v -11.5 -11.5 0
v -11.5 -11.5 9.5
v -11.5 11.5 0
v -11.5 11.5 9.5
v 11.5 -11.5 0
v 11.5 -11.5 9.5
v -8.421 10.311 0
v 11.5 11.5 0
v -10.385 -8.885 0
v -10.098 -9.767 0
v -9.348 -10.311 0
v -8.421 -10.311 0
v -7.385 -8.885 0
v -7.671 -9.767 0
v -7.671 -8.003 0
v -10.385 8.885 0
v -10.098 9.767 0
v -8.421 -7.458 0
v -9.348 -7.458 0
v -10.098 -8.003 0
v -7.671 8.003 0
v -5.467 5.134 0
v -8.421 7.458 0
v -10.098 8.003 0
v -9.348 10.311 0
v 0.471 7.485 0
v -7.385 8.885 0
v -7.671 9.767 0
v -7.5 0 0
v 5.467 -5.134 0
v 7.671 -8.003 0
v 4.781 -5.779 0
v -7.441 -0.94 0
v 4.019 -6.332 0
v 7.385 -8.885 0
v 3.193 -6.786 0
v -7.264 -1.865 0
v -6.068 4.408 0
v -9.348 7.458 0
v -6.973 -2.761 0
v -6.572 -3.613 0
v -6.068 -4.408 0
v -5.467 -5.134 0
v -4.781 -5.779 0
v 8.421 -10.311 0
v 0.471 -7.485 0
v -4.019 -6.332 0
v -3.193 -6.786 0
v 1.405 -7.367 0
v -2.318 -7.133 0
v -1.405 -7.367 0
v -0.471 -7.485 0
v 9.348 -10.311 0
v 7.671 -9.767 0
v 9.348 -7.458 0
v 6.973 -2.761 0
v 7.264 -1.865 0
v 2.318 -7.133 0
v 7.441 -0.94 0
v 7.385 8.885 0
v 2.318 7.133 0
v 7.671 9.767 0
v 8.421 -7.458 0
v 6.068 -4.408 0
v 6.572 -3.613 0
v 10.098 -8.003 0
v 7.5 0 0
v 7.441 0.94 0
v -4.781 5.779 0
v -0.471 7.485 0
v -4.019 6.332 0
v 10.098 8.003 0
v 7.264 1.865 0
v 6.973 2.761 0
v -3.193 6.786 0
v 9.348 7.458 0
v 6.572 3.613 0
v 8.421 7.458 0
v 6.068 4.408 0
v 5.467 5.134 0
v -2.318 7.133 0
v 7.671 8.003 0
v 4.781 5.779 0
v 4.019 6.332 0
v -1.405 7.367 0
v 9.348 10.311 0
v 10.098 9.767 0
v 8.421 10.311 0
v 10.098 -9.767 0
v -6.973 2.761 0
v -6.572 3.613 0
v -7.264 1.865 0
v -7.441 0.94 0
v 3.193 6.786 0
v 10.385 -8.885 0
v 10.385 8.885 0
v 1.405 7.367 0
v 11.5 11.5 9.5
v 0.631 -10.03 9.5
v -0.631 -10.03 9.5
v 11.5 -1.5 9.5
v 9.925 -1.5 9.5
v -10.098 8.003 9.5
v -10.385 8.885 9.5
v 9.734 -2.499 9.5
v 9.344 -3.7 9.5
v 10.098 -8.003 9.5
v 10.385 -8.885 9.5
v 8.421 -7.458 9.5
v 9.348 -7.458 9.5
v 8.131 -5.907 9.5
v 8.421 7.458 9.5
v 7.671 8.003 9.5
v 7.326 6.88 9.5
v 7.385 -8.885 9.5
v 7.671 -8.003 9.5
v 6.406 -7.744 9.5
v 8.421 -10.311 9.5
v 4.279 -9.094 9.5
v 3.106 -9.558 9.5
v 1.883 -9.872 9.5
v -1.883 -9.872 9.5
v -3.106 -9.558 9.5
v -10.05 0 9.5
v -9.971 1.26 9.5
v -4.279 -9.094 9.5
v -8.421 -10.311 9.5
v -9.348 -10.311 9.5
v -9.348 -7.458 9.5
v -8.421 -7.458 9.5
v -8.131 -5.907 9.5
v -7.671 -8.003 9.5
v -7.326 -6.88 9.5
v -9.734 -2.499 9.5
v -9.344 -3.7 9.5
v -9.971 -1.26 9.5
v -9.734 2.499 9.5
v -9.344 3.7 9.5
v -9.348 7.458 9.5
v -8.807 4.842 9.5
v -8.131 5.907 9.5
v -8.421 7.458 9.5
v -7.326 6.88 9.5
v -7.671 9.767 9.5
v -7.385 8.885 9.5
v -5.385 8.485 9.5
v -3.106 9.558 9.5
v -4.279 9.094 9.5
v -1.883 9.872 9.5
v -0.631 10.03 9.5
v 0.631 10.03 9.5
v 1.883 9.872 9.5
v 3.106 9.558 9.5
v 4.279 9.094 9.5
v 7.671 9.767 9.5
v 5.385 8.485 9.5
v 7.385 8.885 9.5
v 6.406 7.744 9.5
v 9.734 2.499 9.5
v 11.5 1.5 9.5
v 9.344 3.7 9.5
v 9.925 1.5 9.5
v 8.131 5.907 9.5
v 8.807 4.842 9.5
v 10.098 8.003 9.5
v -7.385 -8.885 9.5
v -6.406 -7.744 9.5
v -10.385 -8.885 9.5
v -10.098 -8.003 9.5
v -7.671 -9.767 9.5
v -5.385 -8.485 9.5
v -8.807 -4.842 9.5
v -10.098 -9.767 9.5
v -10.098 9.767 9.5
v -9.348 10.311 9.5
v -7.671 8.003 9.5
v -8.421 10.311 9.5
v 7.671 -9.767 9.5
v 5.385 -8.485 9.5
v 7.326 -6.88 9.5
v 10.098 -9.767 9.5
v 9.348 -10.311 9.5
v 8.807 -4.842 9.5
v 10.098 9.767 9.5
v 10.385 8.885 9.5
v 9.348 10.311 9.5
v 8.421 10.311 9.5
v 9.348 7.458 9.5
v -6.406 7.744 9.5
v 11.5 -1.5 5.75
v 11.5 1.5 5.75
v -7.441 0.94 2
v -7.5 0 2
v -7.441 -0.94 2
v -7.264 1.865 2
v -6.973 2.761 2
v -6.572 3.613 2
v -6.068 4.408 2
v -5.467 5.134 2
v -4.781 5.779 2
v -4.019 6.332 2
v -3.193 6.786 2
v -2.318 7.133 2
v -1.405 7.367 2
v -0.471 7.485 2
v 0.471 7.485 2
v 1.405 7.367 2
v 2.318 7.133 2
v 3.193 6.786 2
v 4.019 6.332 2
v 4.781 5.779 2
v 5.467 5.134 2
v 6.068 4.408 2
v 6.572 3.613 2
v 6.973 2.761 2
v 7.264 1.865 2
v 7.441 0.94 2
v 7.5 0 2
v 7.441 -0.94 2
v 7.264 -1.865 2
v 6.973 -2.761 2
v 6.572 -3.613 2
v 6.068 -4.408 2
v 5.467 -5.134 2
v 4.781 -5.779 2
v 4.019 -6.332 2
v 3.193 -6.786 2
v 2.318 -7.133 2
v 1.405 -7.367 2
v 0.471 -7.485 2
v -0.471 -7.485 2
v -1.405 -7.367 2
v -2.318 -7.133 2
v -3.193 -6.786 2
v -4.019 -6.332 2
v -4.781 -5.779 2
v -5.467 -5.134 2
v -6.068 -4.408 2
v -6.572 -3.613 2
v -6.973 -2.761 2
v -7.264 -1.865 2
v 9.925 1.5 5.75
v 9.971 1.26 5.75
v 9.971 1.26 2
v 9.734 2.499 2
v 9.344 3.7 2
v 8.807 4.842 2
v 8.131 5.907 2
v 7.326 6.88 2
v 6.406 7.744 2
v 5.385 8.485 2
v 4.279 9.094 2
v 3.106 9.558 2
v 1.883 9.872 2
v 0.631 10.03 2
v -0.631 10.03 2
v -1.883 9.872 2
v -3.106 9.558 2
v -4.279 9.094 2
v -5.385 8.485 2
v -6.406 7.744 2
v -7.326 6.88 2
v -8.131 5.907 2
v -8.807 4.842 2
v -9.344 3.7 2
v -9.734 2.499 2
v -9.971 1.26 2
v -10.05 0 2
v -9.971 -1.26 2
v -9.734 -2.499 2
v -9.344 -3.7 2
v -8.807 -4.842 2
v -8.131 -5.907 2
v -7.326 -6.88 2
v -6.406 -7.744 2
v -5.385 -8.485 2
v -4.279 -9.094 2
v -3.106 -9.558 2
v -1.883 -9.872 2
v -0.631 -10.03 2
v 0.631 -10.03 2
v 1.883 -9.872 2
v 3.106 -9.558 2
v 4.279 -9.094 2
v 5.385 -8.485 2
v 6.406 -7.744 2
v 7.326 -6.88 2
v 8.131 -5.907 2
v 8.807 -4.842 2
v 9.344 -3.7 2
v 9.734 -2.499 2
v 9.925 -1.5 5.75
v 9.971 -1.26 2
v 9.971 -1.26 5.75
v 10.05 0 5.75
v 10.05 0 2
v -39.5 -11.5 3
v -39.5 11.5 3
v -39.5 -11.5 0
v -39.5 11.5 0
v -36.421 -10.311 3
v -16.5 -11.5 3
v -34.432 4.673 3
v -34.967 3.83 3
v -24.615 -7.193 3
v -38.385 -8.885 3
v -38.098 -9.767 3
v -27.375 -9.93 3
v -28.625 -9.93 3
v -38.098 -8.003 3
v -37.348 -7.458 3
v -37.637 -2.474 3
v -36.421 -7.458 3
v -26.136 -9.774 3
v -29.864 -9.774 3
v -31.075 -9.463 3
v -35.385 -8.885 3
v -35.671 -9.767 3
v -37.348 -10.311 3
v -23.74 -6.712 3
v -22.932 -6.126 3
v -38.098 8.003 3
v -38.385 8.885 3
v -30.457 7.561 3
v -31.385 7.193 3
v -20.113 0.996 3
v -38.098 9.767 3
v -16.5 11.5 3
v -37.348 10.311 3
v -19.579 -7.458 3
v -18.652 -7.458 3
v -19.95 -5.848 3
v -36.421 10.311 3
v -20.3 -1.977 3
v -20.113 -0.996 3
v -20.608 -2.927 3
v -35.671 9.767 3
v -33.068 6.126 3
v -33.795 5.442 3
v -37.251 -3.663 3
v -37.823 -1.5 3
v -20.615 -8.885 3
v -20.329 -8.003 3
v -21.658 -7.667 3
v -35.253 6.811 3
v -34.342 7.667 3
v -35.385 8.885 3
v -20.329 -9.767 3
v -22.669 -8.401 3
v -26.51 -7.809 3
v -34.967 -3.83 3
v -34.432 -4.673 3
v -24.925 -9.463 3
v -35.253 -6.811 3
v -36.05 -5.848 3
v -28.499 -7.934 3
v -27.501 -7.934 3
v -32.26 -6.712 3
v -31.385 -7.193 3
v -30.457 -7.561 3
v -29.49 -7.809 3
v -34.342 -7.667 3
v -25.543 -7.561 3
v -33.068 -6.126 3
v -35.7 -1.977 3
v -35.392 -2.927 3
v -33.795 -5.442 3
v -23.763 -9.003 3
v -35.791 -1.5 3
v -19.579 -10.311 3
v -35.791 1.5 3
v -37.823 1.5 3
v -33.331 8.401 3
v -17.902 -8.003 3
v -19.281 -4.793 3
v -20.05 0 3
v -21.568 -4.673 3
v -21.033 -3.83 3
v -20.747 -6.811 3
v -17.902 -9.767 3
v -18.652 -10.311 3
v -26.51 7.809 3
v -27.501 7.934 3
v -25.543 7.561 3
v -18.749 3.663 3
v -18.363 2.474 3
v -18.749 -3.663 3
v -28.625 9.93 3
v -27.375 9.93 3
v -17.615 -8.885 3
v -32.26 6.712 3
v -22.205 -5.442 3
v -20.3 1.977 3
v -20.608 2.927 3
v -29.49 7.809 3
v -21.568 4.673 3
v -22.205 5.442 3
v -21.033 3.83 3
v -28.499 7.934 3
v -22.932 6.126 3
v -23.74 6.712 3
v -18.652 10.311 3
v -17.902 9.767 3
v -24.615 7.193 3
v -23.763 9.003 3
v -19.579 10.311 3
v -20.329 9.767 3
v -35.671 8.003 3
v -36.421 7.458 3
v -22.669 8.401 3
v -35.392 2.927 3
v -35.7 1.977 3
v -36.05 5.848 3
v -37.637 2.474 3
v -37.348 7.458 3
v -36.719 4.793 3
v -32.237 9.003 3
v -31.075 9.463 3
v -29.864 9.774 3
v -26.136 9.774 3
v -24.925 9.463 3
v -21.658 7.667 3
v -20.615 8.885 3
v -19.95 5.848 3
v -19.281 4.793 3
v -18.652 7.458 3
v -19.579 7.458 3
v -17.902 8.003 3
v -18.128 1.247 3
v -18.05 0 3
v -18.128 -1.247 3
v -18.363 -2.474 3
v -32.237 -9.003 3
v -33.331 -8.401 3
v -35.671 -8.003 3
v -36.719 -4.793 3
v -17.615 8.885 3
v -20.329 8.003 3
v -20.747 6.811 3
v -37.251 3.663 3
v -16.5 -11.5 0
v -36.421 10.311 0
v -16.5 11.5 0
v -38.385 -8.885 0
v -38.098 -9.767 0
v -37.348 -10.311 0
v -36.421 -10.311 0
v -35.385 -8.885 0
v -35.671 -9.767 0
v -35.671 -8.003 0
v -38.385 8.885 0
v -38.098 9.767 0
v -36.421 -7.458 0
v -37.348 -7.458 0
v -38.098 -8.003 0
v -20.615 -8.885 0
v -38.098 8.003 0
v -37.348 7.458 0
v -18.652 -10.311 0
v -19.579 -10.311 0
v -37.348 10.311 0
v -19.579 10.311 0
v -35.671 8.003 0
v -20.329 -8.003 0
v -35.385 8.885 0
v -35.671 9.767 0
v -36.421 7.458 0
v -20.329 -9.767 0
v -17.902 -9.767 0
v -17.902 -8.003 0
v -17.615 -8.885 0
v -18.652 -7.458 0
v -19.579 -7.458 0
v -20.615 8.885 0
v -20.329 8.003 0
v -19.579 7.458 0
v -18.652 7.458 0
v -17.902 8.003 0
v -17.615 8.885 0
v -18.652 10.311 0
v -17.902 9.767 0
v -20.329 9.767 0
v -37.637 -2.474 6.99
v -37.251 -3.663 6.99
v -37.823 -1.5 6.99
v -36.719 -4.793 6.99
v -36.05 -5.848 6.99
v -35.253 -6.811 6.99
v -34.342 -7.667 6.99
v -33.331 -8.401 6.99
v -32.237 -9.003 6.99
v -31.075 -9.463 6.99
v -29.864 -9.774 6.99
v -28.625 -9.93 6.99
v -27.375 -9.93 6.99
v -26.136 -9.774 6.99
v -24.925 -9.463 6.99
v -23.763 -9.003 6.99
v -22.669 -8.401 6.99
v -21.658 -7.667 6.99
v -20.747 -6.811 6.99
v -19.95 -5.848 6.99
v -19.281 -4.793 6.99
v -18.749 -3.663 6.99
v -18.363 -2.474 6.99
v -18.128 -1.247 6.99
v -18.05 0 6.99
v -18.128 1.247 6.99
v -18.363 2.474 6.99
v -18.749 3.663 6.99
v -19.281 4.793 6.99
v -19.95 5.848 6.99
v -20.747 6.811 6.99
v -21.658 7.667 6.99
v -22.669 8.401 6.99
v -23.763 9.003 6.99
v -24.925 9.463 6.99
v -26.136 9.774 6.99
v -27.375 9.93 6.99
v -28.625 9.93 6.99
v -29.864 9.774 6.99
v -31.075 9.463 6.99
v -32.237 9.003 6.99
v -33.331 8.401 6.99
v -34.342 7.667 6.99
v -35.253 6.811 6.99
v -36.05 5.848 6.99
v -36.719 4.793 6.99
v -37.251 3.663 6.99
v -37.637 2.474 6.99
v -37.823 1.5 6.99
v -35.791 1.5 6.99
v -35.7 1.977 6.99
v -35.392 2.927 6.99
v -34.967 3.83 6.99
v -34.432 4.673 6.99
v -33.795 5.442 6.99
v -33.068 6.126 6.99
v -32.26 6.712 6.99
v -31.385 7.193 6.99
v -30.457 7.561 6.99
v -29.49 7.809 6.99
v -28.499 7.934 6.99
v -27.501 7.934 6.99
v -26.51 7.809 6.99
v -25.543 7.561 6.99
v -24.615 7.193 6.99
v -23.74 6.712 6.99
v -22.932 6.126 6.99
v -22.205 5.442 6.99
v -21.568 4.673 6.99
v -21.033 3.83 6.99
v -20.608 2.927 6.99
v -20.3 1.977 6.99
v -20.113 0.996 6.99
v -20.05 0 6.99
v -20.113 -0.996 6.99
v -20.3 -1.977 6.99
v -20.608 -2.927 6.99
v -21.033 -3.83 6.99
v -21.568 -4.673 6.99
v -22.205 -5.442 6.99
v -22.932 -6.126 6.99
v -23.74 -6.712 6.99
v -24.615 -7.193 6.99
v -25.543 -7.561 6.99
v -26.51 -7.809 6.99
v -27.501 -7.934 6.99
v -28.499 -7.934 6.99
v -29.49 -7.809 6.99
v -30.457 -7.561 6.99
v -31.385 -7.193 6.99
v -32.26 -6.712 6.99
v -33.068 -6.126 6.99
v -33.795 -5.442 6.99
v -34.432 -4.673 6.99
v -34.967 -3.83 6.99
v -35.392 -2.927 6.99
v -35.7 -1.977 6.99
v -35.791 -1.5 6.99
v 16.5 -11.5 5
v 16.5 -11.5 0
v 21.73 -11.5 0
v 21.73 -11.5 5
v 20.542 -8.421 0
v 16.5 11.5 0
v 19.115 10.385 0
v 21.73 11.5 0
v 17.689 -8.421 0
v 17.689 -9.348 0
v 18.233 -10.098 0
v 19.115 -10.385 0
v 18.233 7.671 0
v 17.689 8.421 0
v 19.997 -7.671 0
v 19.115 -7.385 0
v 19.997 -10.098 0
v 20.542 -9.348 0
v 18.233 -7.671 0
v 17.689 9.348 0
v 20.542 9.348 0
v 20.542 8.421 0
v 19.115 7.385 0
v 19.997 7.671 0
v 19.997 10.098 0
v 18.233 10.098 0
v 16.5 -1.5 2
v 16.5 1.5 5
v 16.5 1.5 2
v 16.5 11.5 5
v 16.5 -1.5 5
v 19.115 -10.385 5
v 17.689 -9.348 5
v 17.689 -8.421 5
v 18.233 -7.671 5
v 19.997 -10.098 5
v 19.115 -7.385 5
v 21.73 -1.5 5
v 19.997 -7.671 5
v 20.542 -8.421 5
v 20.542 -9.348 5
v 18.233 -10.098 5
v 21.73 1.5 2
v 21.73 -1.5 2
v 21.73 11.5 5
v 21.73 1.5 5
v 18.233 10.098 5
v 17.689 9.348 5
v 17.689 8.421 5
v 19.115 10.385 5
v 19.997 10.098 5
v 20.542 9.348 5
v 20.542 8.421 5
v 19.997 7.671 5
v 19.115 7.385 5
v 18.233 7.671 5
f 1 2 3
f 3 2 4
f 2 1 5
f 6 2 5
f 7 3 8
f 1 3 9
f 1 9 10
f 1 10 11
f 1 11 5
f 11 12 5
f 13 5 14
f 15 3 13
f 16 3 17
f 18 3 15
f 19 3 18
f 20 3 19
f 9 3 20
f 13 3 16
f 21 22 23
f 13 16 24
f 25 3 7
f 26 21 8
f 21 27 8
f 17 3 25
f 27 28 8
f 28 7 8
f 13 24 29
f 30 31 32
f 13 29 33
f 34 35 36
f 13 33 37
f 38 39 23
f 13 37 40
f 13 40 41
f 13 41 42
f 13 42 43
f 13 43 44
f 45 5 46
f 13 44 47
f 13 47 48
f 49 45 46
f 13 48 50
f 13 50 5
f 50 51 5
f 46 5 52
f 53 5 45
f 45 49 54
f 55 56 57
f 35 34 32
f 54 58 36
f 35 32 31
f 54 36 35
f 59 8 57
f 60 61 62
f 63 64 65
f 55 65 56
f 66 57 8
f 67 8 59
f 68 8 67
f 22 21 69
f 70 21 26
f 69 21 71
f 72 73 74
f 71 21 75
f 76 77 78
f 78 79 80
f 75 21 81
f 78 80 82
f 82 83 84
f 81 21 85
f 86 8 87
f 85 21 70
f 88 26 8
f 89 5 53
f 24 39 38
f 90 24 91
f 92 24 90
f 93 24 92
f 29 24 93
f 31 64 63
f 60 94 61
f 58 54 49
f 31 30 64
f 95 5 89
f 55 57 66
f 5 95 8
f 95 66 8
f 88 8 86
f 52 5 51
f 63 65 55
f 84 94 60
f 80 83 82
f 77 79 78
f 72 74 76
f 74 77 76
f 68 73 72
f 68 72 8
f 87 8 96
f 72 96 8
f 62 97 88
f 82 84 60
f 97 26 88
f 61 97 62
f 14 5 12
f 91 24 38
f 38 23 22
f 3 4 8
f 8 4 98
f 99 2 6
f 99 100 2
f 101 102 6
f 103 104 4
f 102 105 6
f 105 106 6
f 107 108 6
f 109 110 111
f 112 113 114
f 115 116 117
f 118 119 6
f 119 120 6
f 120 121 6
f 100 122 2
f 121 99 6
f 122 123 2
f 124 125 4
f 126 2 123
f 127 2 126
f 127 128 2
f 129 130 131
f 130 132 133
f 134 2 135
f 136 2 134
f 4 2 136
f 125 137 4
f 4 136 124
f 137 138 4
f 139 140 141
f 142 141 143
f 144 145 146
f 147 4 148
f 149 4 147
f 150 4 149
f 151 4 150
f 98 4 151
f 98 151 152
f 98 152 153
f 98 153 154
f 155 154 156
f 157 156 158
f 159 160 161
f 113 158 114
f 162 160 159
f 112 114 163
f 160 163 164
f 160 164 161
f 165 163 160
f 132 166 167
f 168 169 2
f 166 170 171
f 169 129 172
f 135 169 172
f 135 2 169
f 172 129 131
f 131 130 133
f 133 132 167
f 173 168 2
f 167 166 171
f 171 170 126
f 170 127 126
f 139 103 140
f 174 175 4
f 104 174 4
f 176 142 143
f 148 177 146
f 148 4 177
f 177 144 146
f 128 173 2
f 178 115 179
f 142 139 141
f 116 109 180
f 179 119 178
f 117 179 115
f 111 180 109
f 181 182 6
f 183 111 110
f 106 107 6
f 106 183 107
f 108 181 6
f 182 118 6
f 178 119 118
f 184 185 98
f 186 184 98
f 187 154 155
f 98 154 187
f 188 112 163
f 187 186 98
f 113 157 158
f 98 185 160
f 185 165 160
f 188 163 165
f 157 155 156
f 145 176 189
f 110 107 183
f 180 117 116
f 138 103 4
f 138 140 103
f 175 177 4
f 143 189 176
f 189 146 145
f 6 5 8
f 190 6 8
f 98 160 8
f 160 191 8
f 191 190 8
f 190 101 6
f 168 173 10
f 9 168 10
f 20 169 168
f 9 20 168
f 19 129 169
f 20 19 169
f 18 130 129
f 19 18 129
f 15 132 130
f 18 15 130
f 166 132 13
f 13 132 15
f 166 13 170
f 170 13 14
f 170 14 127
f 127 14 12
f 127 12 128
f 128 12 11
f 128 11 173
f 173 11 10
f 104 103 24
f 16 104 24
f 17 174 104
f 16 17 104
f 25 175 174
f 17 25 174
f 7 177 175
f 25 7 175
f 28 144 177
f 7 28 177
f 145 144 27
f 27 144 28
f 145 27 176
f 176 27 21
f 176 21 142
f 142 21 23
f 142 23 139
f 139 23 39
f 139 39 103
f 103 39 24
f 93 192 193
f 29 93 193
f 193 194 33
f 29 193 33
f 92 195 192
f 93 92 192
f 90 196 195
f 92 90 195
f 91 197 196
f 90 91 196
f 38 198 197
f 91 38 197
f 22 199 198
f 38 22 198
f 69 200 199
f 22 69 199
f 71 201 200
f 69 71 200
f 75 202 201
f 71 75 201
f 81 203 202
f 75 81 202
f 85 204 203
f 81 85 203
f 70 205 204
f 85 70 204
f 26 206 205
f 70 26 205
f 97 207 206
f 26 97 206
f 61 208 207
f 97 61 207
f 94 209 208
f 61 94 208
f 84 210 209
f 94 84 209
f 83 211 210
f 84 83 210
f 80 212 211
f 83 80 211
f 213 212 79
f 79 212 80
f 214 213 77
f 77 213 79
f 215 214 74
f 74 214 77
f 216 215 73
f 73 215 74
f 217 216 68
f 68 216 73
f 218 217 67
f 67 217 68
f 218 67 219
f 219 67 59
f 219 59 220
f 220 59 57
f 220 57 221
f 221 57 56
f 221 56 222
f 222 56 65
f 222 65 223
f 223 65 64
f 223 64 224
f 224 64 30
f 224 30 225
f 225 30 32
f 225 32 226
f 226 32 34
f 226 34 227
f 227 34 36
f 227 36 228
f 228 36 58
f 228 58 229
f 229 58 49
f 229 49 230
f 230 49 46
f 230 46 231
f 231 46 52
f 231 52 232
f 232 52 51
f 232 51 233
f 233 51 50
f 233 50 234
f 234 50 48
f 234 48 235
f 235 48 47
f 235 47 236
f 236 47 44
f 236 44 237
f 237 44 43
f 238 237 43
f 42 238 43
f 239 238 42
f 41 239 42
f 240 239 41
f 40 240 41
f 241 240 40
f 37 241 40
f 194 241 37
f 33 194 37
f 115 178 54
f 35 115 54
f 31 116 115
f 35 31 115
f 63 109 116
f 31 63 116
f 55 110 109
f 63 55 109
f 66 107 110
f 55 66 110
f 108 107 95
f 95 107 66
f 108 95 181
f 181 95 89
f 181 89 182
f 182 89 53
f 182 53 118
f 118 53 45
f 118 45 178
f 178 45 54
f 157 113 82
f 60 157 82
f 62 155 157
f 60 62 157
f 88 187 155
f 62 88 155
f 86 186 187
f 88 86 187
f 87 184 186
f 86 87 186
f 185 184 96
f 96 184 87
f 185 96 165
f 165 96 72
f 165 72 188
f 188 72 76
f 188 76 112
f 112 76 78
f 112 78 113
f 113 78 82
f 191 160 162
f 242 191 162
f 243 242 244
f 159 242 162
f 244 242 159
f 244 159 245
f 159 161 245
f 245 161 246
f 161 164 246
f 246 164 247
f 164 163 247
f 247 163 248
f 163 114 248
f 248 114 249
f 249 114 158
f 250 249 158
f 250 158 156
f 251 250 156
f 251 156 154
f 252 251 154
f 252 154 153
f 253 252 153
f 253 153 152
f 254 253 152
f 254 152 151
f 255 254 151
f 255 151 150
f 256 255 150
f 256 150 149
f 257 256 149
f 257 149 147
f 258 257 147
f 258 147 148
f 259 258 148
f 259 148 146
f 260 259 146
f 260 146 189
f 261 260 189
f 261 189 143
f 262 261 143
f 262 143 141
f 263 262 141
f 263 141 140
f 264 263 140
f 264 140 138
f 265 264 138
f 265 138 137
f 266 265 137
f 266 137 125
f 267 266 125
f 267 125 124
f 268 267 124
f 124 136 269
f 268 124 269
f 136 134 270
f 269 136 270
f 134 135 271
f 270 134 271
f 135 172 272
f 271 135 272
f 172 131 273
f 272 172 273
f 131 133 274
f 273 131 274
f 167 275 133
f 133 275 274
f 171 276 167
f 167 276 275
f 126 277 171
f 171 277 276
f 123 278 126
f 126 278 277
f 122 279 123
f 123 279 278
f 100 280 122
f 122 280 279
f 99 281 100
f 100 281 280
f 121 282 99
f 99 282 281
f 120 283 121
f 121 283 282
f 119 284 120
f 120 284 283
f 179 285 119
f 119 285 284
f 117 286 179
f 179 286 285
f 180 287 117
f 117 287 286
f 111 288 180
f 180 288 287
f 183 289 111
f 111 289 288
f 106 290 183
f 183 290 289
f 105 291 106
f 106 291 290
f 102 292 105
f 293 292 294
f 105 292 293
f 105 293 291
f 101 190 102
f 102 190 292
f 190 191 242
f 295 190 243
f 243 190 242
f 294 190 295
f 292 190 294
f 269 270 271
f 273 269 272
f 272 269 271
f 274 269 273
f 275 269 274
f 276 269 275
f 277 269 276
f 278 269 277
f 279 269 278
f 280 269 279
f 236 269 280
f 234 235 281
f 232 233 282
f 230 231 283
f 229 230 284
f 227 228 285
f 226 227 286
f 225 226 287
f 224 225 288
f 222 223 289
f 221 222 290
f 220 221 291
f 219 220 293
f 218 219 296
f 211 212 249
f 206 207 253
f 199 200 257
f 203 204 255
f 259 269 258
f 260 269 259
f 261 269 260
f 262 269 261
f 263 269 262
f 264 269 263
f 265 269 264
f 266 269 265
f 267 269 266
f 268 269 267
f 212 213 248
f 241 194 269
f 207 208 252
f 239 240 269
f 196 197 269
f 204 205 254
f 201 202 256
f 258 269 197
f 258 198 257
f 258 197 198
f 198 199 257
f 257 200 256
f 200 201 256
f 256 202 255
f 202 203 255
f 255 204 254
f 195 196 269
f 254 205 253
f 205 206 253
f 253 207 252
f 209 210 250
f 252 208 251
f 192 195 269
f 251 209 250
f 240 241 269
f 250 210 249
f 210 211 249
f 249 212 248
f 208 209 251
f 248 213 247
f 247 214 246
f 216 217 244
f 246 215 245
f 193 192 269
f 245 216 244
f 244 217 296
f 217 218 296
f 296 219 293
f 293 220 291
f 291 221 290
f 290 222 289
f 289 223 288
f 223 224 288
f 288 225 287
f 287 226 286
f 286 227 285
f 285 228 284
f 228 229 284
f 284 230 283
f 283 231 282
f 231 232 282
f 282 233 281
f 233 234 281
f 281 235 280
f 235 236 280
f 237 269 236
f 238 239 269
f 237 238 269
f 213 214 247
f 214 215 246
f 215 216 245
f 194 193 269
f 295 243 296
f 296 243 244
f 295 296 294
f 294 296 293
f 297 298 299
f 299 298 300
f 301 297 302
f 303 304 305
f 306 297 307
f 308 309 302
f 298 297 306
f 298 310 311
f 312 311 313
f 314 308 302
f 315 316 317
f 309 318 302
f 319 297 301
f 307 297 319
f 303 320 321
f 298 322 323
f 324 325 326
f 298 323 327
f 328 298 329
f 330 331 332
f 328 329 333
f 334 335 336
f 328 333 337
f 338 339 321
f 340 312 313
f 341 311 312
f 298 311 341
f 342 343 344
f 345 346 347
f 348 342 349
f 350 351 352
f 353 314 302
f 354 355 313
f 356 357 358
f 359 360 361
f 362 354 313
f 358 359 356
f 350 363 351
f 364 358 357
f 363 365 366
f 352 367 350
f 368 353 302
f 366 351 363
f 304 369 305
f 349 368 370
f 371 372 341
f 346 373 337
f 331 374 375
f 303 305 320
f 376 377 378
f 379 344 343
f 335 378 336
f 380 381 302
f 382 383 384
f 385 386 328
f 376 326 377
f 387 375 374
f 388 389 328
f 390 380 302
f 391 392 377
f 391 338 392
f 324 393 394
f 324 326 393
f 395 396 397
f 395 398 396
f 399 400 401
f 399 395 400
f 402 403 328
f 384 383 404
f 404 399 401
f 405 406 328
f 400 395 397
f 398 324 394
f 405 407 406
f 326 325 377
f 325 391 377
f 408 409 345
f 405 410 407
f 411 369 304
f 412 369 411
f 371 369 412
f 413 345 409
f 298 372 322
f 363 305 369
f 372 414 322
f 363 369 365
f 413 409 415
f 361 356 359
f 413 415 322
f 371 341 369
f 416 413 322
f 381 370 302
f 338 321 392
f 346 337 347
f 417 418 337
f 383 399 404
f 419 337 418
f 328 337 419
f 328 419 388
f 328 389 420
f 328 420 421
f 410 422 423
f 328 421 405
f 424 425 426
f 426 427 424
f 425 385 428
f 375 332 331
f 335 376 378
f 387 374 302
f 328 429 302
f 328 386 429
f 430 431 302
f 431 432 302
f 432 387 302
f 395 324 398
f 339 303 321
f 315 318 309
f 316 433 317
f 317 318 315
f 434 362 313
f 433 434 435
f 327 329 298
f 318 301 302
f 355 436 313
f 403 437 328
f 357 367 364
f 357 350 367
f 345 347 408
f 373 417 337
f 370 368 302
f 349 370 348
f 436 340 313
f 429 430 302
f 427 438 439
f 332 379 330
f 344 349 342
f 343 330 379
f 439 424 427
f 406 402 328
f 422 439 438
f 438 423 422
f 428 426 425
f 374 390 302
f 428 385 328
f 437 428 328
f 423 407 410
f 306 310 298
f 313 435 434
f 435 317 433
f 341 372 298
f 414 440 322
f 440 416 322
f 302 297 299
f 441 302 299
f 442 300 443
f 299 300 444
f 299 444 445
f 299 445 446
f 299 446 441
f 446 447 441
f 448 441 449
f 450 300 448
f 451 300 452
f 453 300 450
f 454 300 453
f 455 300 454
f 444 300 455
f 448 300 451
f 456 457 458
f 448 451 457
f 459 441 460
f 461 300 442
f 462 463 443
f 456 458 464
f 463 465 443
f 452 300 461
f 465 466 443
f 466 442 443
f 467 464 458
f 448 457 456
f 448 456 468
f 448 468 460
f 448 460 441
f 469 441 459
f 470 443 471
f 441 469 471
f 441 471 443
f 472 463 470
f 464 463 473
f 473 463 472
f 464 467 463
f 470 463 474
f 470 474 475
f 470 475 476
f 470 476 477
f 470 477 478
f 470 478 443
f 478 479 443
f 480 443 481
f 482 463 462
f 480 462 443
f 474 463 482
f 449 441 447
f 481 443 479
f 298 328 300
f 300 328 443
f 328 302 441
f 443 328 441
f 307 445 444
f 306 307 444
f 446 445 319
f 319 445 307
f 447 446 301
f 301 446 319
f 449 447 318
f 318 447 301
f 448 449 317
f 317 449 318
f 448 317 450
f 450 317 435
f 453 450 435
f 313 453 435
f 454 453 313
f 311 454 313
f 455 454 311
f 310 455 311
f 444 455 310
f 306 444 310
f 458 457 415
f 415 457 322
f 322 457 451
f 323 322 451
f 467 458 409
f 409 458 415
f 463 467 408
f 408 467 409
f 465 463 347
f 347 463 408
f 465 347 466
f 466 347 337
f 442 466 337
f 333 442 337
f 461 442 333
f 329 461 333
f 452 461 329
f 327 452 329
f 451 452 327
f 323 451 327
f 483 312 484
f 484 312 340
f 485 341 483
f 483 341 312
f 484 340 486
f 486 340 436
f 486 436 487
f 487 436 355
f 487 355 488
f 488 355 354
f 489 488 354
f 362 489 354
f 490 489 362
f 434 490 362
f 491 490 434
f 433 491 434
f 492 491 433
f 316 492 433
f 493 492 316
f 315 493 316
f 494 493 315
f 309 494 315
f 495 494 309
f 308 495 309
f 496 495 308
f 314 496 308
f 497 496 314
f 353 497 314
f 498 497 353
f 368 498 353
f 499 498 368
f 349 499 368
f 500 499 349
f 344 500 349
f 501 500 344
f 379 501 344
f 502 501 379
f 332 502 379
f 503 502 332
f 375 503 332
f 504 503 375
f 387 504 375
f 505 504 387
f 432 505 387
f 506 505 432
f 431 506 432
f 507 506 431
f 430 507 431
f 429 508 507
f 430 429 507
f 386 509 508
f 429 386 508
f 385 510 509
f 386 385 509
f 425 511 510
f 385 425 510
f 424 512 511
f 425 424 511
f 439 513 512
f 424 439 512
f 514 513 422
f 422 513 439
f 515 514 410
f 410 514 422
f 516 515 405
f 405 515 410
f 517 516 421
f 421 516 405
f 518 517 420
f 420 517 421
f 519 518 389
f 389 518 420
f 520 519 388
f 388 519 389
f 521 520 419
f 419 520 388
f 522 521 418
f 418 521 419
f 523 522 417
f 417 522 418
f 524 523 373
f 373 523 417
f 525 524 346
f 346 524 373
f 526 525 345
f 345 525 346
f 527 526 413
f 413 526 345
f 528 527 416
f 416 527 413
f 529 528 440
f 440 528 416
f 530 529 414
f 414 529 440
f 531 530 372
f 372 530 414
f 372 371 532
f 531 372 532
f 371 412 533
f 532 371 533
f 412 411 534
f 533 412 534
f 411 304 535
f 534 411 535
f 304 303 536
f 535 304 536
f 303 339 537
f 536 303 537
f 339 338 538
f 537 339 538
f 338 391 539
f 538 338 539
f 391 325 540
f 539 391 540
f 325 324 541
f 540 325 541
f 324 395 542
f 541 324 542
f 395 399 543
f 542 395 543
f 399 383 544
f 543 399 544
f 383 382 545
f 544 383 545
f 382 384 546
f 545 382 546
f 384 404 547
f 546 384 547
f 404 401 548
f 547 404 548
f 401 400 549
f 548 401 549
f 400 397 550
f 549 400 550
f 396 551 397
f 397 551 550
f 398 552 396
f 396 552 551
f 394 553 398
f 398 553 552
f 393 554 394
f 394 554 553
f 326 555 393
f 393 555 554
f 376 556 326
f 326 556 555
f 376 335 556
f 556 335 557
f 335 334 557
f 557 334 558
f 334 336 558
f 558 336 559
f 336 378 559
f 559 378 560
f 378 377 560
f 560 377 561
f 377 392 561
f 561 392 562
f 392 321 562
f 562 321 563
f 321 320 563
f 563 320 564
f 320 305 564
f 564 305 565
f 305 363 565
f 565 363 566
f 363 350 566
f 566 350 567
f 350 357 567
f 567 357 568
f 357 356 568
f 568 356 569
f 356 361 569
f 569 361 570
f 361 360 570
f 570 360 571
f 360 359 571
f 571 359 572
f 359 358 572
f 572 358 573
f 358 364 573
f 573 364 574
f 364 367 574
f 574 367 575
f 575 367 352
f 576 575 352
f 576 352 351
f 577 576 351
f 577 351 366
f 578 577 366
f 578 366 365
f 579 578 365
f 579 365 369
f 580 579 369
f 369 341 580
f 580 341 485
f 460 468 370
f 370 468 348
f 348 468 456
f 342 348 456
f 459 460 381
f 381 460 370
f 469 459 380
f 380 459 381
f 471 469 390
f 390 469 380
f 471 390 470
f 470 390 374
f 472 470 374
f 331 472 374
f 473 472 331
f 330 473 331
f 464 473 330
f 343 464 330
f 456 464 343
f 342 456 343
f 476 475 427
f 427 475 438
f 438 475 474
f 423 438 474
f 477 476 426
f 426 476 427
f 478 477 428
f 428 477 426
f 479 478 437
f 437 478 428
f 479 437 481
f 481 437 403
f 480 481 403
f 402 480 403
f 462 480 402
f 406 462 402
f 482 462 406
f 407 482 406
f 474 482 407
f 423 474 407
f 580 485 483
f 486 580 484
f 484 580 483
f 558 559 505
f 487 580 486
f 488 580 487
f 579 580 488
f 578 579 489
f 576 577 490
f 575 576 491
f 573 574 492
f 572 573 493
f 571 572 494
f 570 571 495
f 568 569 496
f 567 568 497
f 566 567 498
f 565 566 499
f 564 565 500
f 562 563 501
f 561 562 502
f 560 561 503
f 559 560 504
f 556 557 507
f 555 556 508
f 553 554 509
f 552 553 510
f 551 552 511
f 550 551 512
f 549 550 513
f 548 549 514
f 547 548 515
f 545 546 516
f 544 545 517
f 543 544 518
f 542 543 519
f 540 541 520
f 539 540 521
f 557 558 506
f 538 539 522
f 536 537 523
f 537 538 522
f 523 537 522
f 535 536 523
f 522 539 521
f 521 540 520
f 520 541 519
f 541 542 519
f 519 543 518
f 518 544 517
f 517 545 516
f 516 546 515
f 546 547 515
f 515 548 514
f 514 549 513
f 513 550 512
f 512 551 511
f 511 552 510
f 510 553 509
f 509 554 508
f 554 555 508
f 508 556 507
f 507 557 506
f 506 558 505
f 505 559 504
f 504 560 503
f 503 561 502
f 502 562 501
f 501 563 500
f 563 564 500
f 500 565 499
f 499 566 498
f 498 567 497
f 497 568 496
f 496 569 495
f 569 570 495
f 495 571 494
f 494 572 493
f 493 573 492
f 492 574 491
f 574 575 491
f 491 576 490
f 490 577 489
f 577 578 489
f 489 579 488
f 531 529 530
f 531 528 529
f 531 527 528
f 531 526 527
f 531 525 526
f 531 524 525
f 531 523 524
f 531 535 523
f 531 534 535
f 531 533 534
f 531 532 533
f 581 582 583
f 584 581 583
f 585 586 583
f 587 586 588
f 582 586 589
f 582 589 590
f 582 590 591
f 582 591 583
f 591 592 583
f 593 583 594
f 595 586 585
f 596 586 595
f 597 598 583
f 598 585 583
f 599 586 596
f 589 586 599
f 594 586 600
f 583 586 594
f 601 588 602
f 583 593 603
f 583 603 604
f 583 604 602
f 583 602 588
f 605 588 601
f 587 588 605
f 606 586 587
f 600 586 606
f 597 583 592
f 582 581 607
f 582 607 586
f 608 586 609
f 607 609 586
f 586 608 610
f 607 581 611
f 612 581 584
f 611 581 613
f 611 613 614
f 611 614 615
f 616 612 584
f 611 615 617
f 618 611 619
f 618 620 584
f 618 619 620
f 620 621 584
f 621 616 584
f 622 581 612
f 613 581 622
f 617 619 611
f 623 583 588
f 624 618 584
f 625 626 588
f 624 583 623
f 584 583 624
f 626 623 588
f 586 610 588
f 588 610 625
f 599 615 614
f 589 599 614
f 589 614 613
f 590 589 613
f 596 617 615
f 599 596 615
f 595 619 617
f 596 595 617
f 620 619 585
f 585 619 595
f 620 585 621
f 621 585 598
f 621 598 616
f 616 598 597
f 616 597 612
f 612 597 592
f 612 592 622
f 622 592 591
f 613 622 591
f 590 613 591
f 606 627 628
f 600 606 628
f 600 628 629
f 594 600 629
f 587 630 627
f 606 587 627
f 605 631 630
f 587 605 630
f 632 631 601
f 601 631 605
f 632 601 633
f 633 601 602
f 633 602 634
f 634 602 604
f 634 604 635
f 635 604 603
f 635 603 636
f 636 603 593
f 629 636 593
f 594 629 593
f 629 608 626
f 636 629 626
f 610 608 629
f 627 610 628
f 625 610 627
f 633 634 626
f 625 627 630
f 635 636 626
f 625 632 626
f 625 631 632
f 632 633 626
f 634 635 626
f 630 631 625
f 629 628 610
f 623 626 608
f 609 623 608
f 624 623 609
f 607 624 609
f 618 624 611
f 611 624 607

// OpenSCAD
//
// This script is used to create the components for a printable inkjet head, and is based
// on the design by Adrian Bowyer (http://www.thingiverse.com/thing:5152). This script
// is parameterized so that different sized piezos and nozzle plates can be used.
//
// The main difference from the #5152 version is that only a single o-ring is used.
//
// License: GPL V2
// 
// Version 0.1, Dec 17th, 2010 - Created by madscifi - This has not yet been printed 
// Modified by Adrian to allow for 2 or 1 O rings and to make the clamp plate thicker in the middle. 
// Version 0.3, Dec 18th, 2010 - fix piezo clamp clearance/width bug
//      - rework clamp o-ring addition so that the body height is adjusted based on the height of the second o-ring
//      - remove clamp wire cutout if second o-ring is used
//      - reposition bolt holes so it is equidistant from the piezo wall and the body wall.
//      - automatically compute width of tube clamp

//
// If gen_for_stl is 0, the various components are positioned as an "exploded" stack,
// so it is easy to see how they interact. 
//
// If gen_for_stl is 1, the various components are positioned to be printed as a single
// plate, with the components distributed along the x axis.
//
// As originally submitted this script is configured to create all components for printing
// and is configured for a 20 mm diameter piezo and a 2 mm high o-ring.

gen_for_stl = 1;	   		// set to 1 if the enabled component should be positioned for printing

//
// The following variables control the various dimensions - all in mm
// These will likely need to be changed, depending on the specific piezo,
// o-ring and nozzle plate used.
//

piezo_diameter=20;		// diameter of piezo disk
piezo_height=0.5;		// height of piezo disk

o_ring_body_height=2;		// height of body o-ring (the one that defines the ink chamber)
o_ring_clamp_height=0;		// height of clamp o-ring (the one between the clamp and the piezo)
						// 0 indicates that this o-ring is not used.
						// If this o-ring is used then the cutout for the wire in the clamping
						// component is not created.
nozzle_plate_height=2;

body_xy_extra=3; 		// extra space beyond the piezo that the body uses.
body_extra_height=3;

bolt_hole_diameter=3;	// diameter of bolt holes

tube_diameter = 3;		// diameter of tubing
tube_clamp_extra_height = 2;	// extra height ( over tube height) of tube clamp.

//
// The following variables might need to be tweaked, or they might be
// fine as is. It is probably best to do a test print before changing them.
//

nozzle_ledge_height=2;		// height of the ledge used to support the nozzle plate
nozzle_ledge_inset=5;		// inset of the ledge used to support the nozzle plate

piezo_clearance=0.1;			// allowance between the body and the piezo in the xy plane

piezo_clamp_clearance=0.1;	// allowance between the body and the piezo clamp ring
piezo_clamp_width=2;		// width of the piezo clamp pressure ring

piezo_clamp_square_height=3;	// height of piezo clamp support square

wire_cut_width=3;			// width of wire cutout

bolt_hole_resolution=10;		// number of "sides" to use when generating the bolt holes
large_hole_resolution=50;		// number of "sides" to use when generating the larger circular features

component_stl_spacing=5;		// space between components when generating stl

//
// The following should not need to be modified unless the basic design is being changed.
//

body_xy_size=piezo_diameter+body_xy_extra;

body_height=nozzle_ledge_height+nozzle_plate_height+o_ring_body_height+o_ring_clamp_height+piezo_height+body_extra_height;

// the bolt hole walls (and center) should be equidistant from the body walls and the piezo cutout wall,
bolt_a = ((piezo_diameter-piezo_clearance)/2)*sin(45);
bolt_b = (body_xy_size/2);
bolt_xy_pos=(sin(45)*bolt_b+bolt_a)/(sin(45)+1);

tube_clamp_height = tube_diameter + tube_clamp_extra_height;
tube_clamp_width = (body_xy_size/2 - bolt_xy_pos)*2;

//
// Body component
//

  translate(v = [0,0,gen_for_stl==0?0:body_height/2])
  {
    difference()
    {
      // starting body block
      cube(size=[body_xy_size,body_xy_size,body_height],center=true);
      
      // chamber cutout
      translate(v = [0, 0, nozzle_ledge_height])
      {
        cylinder(h = body_height, r=(piezo_diameter+piezo_clearance)/2, center = true, $fn=large_hole_resolution);
      }

      // nozzle cutout
      cylinder(h = body_height+1, r=(piezo_diameter-nozzle_ledge_inset)/2, center = true, $fn=large_hole_resolution);

      // cut out for piezo wires
      translate(v = [body_xy_size/2, 0, body_height/2-(body_extra_height+o_ring_clamp_height+piezo_height+(o_ring_body_height/8))/2])
      {
        cube(size=[body_xy_size,wire_cut_width,body_extra_height+o_ring_clamp_height+piezo_height+(o_ring_body_height/8)],center=true);
      }

      // bolt cutouts
      translate(v = [bolt_xy_pos, bolt_xy_pos, 0])
      {
        cylinder(h = body_height+1, r=(bolt_hole_diameter)/2, center = true, $fn=bolt_hole_resolution);
      }
      translate(v = [-bolt_xy_pos, -bolt_xy_pos, 0])
      {
        cylinder(h = body_height+1, r=(bolt_hole_diameter)/2, center = true, $fn=bolt_hole_resolution);
      }
      translate(v = [bolt_xy_pos, -bolt_xy_pos, 0])
      {
        cylinder(h = body_height+1, r=(bolt_hole_diameter)/2, center = true, $fn=bolt_hole_resolution);
      }
      translate(v = [-bolt_xy_pos, bolt_xy_pos, 0])
      {
        cylinder(h = body_height+1, r=(bolt_hole_diameter)/2, center = true, $fn=bolt_hole_resolution);
      }
    }
  }

//
// Piezo Clamp
//

  translate(v = [gen_for_stl==0?0:-(body_xy_size+component_stl_spacing),0, gen_for_stl==0?body_height+5:piezo_clamp_square_height/2])
  {
    rotate(a=[0, gen_for_stl==0?0:180,0])
    {
      union() {
        difference()
        {
          // starting square (structural support)
          cube(size=[body_xy_size,body_xy_size,piezo_clamp_square_height],center=true);

          // bolt cutouts
          translate(v = [bolt_xy_pos, bolt_xy_pos, 0])
          {
            cylinder(h = body_height+1, r=(bolt_hole_diameter)/2, center = true, $fn=bolt_hole_resolution);
          }
          translate(v = [-bolt_xy_pos, -bolt_xy_pos, 0])
          {
            cylinder(h = body_height+1, r=(bolt_hole_diameter)/2, center = true, $fn=bolt_hole_resolution);
          }
          translate(v = [bolt_xy_pos, -bolt_xy_pos, 0])
          {
            cylinder(h = body_height+1, r=(bolt_hole_diameter)/2, center = true, $fn=bolt_hole_resolution);
          }
          translate(v = [-bolt_xy_pos, bolt_xy_pos, 0])
          {
            cylinder(h = body_height+1, r=(bolt_hole_diameter)/2, center = true, $fn=bolt_hole_resolution);
          }
        }

        // pressure ring
        translate(v = [0,0, -(body_extra_height+(o_ring_body_height/2))/2-piezo_clamp_square_height/2+0.01])
        {
          difference()
          {
            // starting ring material
            cylinder(
	      h = body_extra_height+(o_ring_body_height/2),
	      r=(piezo_diameter-piezo_clamp_clearance)/2,
	      center = true,
	      $fn=large_hole_resolution);
	      
            // hollow out ring
            cylinder(
	      h = body_extra_height+(o_ring_body_height/2)+1,
	      r=(piezo_diameter-piezo_clamp_clearance)/2-piezo_clamp_width,
	      center = true,
	      $fn=large_hole_resolution);

            // cut out for piezo wire - only used if o_ring_clamp_height is 0
	    if( o_ring_clamp_height == 0 )
            {
              translate(v = [body_xy_size/2, 0, 0])
              {
                cube(size=[body_xy_size,wire_cut_width,body_extra_height+(o_ring_body_height/2)],center=true);
              }
            }	      
          }
        }
      }
    }
  }

//
// Tube Clamp
//

  translate(
    v = [
      gen_for_stl==0?0:body_xy_size/2+tube_clamp_width/2+component_stl_spacing,
      gen_for_stl==0?(body_xy_size-tube_clamp_width)/2:0,
      gen_for_stl==0?-(body_height+tube_clamp_height)/2-5:tube_clamp_height/2])
  {
    rotate(a=[0, 0, gen_for_stl==0?0:90])
    {
    difference()
    {
      // starting tube clamp body
      cube(size=[body_xy_size,tube_clamp_width,tube_clamp_height],center=true);

      // tube cutout
      translate(v = [0,0,(tube_clamp_height-tube_diameter)/2])
      {
        cube(size=[tube_diameter,tube_clamp_width+2,tube_diameter],center=true);
      }

      // bolt hole cutouts
      translate(v = [bolt_xy_pos,0, 0])
      {
        cylinder(h = body_height+1, r=(bolt_hole_diameter)/2, center = true, $fn=bolt_hole_resolution);
      }
      translate(v = [-bolt_xy_pos,0, 0])
      {
        cylinder(h = body_height+1, r=(bolt_hole_diameter)/2, center = true, $fn=bolt_hole_resolution);
      }
    }
  }
}
